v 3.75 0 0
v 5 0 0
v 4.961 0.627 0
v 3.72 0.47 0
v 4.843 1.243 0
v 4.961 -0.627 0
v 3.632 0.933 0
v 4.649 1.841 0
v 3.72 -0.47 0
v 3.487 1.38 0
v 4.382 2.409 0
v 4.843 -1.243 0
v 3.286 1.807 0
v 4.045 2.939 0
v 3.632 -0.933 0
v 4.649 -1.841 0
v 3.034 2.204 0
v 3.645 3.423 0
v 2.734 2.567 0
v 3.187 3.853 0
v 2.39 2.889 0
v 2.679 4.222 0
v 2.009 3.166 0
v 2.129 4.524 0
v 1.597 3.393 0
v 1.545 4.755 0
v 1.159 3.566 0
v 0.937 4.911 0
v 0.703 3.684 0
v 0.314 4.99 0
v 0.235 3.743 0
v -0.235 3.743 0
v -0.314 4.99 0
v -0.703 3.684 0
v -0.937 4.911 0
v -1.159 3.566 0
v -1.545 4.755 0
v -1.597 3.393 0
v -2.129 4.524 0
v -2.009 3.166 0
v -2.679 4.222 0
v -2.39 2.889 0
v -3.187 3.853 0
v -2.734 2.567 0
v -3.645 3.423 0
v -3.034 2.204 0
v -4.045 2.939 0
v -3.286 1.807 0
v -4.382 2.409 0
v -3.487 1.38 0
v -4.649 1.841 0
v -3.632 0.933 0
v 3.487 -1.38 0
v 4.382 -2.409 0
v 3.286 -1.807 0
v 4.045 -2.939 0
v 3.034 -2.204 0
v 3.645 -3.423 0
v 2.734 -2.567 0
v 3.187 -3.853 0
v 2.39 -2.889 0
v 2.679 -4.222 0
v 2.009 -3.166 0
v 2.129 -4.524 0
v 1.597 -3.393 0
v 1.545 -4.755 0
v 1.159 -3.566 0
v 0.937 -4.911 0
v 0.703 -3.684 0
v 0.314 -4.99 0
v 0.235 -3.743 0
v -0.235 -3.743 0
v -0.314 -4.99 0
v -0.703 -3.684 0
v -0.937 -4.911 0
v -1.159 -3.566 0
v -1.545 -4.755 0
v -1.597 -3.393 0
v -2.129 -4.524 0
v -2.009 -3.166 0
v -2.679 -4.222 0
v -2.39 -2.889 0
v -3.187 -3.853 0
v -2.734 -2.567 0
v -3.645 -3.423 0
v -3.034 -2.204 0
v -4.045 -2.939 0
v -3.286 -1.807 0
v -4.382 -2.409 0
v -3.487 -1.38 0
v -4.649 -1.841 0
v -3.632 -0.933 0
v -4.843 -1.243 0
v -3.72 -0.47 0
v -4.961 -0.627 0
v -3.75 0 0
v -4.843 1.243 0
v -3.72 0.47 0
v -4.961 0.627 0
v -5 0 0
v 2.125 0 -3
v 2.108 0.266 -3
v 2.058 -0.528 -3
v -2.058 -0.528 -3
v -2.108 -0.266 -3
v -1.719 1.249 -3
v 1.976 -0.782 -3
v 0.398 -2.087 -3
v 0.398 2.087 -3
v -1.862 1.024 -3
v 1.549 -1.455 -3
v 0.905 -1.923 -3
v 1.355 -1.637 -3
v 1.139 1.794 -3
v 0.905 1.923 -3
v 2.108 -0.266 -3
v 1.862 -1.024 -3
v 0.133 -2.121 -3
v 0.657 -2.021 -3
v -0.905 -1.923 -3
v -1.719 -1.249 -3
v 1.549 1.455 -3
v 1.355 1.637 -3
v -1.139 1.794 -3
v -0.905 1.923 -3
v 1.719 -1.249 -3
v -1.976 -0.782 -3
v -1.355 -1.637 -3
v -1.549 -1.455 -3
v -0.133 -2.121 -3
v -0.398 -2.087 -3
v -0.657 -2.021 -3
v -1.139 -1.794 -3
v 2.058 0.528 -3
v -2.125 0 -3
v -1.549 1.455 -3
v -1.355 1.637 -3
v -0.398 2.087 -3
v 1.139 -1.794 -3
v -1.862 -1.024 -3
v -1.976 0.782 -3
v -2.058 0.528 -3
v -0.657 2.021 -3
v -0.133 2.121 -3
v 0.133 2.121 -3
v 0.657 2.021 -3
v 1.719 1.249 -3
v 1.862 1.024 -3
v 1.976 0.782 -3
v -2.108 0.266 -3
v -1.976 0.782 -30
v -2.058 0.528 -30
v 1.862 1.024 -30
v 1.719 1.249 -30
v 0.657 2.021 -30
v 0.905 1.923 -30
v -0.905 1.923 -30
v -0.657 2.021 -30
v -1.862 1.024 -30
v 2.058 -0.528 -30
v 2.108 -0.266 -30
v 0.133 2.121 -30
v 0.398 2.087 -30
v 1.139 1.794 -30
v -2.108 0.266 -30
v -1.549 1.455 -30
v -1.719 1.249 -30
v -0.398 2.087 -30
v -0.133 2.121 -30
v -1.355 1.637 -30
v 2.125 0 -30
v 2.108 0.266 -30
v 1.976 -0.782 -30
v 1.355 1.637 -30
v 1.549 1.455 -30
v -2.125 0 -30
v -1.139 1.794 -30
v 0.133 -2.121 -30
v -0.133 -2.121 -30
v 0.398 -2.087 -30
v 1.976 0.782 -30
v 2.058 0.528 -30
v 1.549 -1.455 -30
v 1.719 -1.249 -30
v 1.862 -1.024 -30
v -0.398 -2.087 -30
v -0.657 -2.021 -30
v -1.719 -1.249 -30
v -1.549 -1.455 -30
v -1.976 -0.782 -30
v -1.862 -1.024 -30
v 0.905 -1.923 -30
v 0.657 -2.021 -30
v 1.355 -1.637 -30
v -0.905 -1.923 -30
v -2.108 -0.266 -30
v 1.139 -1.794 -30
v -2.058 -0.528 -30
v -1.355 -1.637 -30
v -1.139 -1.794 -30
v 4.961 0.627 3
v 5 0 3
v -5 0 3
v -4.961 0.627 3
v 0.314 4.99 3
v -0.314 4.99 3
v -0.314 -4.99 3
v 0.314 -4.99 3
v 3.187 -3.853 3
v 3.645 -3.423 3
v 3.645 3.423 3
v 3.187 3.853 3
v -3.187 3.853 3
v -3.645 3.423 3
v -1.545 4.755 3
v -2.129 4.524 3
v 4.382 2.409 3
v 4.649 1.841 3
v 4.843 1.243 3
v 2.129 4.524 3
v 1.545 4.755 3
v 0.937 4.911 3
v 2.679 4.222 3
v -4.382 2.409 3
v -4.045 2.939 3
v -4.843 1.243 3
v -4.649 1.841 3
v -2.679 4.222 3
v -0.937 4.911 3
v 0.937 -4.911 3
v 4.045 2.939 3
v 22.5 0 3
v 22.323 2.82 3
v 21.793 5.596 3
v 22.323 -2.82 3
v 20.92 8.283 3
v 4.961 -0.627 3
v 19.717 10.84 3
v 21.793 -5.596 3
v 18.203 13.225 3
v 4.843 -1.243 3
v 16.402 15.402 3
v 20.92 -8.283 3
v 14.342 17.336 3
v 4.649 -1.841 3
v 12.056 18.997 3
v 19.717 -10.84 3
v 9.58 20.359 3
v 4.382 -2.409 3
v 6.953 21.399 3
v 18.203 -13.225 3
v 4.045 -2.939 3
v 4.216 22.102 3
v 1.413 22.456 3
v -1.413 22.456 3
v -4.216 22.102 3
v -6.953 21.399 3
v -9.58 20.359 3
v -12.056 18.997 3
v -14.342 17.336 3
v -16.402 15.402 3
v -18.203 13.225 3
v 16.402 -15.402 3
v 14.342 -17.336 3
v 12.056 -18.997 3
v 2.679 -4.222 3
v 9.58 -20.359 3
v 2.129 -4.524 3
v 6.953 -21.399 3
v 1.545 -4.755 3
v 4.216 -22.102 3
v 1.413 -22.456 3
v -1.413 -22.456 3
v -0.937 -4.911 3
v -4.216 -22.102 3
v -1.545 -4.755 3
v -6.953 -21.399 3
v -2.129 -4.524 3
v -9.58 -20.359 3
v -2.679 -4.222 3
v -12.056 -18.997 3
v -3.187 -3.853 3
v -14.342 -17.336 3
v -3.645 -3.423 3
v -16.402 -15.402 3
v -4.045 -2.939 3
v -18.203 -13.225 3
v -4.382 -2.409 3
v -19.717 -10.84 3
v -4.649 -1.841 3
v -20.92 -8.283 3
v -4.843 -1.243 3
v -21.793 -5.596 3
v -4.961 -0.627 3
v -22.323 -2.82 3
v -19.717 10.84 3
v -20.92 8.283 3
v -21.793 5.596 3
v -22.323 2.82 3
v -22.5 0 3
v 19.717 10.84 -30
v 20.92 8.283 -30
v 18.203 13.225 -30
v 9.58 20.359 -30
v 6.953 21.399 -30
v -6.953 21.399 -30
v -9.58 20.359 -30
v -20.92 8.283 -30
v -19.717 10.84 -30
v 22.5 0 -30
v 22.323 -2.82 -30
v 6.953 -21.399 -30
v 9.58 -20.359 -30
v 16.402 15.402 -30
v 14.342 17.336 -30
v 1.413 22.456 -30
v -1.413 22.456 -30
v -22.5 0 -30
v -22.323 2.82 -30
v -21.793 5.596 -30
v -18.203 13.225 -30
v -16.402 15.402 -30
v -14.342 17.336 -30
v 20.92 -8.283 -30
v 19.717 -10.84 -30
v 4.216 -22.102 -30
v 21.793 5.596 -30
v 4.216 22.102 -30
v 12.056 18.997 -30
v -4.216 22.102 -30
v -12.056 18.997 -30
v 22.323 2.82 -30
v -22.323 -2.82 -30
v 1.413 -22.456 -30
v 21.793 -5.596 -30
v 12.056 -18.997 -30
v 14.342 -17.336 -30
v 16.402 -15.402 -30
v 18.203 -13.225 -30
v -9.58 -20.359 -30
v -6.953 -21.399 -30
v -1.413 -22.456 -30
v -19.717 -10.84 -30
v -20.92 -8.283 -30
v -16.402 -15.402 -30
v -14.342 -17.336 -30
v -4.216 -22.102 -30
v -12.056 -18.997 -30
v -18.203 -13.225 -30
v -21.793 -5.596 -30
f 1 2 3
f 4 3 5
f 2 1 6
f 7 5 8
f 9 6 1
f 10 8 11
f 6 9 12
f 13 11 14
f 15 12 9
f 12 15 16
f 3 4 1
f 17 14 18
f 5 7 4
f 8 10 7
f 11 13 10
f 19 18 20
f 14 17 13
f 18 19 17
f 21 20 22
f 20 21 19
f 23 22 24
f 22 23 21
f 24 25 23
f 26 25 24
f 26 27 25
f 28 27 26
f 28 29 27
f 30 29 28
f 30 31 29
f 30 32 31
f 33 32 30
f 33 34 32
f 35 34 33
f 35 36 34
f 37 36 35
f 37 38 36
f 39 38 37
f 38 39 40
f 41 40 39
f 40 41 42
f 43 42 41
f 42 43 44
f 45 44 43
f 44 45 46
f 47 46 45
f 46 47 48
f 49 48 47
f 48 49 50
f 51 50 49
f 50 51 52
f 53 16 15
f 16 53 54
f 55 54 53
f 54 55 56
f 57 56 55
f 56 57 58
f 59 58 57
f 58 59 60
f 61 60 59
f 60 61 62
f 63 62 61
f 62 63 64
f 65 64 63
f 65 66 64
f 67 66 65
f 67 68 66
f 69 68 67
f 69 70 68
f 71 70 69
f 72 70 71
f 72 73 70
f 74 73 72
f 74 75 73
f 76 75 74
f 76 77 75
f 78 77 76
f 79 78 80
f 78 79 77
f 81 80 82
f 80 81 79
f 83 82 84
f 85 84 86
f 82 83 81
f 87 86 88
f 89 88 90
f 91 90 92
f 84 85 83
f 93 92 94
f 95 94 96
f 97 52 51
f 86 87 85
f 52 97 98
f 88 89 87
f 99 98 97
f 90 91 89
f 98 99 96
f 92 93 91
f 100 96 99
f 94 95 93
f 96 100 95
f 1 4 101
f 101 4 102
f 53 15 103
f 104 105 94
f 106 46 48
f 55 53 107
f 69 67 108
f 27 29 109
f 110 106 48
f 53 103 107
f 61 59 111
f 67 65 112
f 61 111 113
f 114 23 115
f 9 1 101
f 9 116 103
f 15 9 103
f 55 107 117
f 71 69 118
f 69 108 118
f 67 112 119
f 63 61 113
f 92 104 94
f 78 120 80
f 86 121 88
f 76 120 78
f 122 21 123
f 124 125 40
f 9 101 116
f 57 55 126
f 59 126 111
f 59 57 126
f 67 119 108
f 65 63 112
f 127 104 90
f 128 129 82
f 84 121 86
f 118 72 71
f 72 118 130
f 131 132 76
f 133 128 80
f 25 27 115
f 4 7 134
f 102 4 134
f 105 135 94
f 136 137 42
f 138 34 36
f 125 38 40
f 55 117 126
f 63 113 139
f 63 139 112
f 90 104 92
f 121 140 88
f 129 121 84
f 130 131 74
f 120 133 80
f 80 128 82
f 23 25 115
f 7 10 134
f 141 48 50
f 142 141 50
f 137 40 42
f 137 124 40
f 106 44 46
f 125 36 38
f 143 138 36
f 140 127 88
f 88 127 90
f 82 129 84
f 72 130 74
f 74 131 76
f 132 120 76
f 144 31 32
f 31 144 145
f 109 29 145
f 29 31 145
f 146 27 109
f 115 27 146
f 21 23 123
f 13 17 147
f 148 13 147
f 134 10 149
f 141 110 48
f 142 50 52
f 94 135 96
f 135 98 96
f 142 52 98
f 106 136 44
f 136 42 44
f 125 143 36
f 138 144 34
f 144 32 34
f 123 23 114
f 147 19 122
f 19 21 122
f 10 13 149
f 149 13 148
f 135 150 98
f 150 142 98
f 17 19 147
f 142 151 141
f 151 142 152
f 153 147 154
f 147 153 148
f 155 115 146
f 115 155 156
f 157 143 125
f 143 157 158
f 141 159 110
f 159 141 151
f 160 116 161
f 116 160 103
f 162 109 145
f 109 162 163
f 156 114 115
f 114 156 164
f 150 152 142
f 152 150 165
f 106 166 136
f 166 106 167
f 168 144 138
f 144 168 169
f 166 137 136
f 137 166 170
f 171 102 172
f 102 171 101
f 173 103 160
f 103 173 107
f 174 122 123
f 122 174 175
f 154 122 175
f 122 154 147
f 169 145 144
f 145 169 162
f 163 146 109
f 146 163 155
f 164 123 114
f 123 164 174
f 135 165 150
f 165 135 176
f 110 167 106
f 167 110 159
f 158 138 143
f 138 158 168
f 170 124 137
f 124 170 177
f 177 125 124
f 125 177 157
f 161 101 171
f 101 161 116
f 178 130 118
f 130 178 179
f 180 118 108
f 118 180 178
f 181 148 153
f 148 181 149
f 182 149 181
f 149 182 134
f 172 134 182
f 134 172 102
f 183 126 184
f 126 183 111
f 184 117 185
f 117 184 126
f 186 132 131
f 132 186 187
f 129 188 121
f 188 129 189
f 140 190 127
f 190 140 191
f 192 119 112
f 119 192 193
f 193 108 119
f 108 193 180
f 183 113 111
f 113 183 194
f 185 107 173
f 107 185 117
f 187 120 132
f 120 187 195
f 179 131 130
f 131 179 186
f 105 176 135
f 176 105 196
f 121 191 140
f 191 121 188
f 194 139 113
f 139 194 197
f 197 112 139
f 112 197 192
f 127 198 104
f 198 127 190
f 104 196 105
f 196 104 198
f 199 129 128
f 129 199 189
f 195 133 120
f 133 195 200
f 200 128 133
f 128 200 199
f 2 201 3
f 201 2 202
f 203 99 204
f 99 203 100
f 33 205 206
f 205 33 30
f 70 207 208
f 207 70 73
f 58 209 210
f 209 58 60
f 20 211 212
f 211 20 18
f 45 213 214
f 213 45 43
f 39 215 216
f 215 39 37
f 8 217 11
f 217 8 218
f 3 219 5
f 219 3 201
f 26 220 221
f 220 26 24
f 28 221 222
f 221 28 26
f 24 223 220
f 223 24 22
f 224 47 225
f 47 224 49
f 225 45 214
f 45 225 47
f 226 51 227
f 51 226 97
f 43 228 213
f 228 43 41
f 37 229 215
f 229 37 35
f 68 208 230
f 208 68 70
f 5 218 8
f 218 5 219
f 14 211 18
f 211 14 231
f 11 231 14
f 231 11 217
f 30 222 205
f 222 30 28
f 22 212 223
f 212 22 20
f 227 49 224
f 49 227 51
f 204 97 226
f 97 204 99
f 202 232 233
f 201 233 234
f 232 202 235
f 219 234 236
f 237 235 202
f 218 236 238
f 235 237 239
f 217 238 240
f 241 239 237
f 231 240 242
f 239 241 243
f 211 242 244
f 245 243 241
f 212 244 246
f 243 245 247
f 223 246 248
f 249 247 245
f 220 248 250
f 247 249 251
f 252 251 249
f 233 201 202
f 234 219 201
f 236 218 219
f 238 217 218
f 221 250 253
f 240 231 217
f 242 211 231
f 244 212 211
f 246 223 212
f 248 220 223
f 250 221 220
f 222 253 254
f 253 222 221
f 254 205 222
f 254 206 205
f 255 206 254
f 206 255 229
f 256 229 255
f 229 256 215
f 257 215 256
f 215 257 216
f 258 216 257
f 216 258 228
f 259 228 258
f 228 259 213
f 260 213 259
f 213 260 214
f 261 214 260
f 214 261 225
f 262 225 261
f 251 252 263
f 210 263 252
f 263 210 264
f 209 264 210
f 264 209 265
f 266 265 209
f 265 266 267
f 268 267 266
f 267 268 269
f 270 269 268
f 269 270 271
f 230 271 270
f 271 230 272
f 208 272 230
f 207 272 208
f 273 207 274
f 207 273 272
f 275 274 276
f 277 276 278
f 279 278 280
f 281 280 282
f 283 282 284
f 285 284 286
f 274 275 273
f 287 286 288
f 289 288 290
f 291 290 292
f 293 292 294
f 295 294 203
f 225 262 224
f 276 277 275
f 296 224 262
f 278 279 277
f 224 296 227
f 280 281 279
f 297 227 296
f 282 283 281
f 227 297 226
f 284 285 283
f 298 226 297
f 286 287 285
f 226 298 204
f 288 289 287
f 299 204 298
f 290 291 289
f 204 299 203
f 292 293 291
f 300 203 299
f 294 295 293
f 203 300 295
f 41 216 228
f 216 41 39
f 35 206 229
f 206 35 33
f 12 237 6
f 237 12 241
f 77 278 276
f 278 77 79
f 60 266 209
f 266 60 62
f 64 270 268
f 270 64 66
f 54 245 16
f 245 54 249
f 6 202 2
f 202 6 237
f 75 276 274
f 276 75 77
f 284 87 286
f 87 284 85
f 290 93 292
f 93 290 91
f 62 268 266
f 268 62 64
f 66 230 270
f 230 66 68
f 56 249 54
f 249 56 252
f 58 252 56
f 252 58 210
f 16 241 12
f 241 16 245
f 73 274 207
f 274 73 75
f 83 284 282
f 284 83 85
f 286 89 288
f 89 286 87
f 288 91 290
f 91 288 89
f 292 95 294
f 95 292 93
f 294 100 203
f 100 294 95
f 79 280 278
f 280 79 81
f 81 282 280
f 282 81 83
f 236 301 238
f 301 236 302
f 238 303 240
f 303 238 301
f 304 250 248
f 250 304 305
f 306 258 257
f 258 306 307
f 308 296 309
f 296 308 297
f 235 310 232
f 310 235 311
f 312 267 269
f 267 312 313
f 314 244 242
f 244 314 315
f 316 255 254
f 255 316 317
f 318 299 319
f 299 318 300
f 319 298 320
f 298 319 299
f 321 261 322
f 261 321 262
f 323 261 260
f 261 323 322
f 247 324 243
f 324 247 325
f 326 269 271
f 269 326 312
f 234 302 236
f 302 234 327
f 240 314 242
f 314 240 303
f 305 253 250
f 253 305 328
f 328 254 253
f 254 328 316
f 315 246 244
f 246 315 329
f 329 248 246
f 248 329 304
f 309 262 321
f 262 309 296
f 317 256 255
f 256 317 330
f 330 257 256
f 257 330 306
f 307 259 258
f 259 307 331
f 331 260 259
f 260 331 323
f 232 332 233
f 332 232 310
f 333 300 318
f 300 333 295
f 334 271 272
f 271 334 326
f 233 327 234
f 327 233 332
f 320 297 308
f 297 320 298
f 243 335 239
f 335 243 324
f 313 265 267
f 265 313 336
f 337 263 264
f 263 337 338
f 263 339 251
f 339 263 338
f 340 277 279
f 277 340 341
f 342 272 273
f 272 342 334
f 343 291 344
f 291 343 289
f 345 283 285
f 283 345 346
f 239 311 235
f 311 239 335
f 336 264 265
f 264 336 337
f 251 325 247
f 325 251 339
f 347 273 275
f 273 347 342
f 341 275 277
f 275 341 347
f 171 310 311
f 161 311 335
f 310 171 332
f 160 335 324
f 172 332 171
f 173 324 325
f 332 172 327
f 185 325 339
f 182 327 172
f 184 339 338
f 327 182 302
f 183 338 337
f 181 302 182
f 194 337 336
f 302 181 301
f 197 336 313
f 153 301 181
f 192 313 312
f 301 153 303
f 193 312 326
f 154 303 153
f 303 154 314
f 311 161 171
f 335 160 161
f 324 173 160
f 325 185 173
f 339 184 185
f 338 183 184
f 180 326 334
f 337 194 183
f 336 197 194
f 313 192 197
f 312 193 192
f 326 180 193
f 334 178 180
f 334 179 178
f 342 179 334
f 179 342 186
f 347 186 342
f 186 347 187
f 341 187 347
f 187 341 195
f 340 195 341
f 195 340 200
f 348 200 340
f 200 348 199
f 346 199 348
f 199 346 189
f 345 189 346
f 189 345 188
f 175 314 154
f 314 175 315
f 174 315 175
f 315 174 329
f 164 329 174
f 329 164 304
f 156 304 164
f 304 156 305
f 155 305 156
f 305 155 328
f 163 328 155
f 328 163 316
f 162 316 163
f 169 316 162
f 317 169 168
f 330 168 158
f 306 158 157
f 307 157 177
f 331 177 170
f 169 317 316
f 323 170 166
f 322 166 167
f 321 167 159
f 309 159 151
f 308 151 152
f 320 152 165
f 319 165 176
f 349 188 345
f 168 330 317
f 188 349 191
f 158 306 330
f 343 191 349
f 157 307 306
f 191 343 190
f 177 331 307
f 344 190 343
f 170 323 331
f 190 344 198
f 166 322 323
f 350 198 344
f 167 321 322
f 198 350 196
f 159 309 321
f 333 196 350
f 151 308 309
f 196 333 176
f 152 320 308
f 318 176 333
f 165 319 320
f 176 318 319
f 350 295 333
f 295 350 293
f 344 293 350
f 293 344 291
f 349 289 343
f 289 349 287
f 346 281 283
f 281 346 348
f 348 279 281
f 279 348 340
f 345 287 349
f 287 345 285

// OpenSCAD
$fn = 50;


difference() {
	union() {
		translate(v = [0, 0, -30.0000000000]) {
			cylinder(h = 33, r = 22.5000000000);
		}
	}
	union() {
		translate(v = [0, 0, 0]) {
			rotate(a = [0, 0, 0]) {
				difference() {
					union() {
						translate(v = [0, 0, -33.0000000000]) {
							cylinder(h = 33, r = 2.0000000000);
						}
						translate(v = [0, 0, -3]) {
							cylinder(h = 3, r1 = 2.1250000000, r2 = 3.7500000000);
						}
						translate(v = [0, 0, -33.0000000000]) {
							cylinder(h = 33, r = 2.1250000000);
						}
						translate(v = [0, 0, -33.0000000000]) {
							cylinder(h = 33, r = 2.0000000000);
						}
					}
					union();
				}
			}
		}
		#cylinder(h = 3, r = 5.0000000000);
	}
}
